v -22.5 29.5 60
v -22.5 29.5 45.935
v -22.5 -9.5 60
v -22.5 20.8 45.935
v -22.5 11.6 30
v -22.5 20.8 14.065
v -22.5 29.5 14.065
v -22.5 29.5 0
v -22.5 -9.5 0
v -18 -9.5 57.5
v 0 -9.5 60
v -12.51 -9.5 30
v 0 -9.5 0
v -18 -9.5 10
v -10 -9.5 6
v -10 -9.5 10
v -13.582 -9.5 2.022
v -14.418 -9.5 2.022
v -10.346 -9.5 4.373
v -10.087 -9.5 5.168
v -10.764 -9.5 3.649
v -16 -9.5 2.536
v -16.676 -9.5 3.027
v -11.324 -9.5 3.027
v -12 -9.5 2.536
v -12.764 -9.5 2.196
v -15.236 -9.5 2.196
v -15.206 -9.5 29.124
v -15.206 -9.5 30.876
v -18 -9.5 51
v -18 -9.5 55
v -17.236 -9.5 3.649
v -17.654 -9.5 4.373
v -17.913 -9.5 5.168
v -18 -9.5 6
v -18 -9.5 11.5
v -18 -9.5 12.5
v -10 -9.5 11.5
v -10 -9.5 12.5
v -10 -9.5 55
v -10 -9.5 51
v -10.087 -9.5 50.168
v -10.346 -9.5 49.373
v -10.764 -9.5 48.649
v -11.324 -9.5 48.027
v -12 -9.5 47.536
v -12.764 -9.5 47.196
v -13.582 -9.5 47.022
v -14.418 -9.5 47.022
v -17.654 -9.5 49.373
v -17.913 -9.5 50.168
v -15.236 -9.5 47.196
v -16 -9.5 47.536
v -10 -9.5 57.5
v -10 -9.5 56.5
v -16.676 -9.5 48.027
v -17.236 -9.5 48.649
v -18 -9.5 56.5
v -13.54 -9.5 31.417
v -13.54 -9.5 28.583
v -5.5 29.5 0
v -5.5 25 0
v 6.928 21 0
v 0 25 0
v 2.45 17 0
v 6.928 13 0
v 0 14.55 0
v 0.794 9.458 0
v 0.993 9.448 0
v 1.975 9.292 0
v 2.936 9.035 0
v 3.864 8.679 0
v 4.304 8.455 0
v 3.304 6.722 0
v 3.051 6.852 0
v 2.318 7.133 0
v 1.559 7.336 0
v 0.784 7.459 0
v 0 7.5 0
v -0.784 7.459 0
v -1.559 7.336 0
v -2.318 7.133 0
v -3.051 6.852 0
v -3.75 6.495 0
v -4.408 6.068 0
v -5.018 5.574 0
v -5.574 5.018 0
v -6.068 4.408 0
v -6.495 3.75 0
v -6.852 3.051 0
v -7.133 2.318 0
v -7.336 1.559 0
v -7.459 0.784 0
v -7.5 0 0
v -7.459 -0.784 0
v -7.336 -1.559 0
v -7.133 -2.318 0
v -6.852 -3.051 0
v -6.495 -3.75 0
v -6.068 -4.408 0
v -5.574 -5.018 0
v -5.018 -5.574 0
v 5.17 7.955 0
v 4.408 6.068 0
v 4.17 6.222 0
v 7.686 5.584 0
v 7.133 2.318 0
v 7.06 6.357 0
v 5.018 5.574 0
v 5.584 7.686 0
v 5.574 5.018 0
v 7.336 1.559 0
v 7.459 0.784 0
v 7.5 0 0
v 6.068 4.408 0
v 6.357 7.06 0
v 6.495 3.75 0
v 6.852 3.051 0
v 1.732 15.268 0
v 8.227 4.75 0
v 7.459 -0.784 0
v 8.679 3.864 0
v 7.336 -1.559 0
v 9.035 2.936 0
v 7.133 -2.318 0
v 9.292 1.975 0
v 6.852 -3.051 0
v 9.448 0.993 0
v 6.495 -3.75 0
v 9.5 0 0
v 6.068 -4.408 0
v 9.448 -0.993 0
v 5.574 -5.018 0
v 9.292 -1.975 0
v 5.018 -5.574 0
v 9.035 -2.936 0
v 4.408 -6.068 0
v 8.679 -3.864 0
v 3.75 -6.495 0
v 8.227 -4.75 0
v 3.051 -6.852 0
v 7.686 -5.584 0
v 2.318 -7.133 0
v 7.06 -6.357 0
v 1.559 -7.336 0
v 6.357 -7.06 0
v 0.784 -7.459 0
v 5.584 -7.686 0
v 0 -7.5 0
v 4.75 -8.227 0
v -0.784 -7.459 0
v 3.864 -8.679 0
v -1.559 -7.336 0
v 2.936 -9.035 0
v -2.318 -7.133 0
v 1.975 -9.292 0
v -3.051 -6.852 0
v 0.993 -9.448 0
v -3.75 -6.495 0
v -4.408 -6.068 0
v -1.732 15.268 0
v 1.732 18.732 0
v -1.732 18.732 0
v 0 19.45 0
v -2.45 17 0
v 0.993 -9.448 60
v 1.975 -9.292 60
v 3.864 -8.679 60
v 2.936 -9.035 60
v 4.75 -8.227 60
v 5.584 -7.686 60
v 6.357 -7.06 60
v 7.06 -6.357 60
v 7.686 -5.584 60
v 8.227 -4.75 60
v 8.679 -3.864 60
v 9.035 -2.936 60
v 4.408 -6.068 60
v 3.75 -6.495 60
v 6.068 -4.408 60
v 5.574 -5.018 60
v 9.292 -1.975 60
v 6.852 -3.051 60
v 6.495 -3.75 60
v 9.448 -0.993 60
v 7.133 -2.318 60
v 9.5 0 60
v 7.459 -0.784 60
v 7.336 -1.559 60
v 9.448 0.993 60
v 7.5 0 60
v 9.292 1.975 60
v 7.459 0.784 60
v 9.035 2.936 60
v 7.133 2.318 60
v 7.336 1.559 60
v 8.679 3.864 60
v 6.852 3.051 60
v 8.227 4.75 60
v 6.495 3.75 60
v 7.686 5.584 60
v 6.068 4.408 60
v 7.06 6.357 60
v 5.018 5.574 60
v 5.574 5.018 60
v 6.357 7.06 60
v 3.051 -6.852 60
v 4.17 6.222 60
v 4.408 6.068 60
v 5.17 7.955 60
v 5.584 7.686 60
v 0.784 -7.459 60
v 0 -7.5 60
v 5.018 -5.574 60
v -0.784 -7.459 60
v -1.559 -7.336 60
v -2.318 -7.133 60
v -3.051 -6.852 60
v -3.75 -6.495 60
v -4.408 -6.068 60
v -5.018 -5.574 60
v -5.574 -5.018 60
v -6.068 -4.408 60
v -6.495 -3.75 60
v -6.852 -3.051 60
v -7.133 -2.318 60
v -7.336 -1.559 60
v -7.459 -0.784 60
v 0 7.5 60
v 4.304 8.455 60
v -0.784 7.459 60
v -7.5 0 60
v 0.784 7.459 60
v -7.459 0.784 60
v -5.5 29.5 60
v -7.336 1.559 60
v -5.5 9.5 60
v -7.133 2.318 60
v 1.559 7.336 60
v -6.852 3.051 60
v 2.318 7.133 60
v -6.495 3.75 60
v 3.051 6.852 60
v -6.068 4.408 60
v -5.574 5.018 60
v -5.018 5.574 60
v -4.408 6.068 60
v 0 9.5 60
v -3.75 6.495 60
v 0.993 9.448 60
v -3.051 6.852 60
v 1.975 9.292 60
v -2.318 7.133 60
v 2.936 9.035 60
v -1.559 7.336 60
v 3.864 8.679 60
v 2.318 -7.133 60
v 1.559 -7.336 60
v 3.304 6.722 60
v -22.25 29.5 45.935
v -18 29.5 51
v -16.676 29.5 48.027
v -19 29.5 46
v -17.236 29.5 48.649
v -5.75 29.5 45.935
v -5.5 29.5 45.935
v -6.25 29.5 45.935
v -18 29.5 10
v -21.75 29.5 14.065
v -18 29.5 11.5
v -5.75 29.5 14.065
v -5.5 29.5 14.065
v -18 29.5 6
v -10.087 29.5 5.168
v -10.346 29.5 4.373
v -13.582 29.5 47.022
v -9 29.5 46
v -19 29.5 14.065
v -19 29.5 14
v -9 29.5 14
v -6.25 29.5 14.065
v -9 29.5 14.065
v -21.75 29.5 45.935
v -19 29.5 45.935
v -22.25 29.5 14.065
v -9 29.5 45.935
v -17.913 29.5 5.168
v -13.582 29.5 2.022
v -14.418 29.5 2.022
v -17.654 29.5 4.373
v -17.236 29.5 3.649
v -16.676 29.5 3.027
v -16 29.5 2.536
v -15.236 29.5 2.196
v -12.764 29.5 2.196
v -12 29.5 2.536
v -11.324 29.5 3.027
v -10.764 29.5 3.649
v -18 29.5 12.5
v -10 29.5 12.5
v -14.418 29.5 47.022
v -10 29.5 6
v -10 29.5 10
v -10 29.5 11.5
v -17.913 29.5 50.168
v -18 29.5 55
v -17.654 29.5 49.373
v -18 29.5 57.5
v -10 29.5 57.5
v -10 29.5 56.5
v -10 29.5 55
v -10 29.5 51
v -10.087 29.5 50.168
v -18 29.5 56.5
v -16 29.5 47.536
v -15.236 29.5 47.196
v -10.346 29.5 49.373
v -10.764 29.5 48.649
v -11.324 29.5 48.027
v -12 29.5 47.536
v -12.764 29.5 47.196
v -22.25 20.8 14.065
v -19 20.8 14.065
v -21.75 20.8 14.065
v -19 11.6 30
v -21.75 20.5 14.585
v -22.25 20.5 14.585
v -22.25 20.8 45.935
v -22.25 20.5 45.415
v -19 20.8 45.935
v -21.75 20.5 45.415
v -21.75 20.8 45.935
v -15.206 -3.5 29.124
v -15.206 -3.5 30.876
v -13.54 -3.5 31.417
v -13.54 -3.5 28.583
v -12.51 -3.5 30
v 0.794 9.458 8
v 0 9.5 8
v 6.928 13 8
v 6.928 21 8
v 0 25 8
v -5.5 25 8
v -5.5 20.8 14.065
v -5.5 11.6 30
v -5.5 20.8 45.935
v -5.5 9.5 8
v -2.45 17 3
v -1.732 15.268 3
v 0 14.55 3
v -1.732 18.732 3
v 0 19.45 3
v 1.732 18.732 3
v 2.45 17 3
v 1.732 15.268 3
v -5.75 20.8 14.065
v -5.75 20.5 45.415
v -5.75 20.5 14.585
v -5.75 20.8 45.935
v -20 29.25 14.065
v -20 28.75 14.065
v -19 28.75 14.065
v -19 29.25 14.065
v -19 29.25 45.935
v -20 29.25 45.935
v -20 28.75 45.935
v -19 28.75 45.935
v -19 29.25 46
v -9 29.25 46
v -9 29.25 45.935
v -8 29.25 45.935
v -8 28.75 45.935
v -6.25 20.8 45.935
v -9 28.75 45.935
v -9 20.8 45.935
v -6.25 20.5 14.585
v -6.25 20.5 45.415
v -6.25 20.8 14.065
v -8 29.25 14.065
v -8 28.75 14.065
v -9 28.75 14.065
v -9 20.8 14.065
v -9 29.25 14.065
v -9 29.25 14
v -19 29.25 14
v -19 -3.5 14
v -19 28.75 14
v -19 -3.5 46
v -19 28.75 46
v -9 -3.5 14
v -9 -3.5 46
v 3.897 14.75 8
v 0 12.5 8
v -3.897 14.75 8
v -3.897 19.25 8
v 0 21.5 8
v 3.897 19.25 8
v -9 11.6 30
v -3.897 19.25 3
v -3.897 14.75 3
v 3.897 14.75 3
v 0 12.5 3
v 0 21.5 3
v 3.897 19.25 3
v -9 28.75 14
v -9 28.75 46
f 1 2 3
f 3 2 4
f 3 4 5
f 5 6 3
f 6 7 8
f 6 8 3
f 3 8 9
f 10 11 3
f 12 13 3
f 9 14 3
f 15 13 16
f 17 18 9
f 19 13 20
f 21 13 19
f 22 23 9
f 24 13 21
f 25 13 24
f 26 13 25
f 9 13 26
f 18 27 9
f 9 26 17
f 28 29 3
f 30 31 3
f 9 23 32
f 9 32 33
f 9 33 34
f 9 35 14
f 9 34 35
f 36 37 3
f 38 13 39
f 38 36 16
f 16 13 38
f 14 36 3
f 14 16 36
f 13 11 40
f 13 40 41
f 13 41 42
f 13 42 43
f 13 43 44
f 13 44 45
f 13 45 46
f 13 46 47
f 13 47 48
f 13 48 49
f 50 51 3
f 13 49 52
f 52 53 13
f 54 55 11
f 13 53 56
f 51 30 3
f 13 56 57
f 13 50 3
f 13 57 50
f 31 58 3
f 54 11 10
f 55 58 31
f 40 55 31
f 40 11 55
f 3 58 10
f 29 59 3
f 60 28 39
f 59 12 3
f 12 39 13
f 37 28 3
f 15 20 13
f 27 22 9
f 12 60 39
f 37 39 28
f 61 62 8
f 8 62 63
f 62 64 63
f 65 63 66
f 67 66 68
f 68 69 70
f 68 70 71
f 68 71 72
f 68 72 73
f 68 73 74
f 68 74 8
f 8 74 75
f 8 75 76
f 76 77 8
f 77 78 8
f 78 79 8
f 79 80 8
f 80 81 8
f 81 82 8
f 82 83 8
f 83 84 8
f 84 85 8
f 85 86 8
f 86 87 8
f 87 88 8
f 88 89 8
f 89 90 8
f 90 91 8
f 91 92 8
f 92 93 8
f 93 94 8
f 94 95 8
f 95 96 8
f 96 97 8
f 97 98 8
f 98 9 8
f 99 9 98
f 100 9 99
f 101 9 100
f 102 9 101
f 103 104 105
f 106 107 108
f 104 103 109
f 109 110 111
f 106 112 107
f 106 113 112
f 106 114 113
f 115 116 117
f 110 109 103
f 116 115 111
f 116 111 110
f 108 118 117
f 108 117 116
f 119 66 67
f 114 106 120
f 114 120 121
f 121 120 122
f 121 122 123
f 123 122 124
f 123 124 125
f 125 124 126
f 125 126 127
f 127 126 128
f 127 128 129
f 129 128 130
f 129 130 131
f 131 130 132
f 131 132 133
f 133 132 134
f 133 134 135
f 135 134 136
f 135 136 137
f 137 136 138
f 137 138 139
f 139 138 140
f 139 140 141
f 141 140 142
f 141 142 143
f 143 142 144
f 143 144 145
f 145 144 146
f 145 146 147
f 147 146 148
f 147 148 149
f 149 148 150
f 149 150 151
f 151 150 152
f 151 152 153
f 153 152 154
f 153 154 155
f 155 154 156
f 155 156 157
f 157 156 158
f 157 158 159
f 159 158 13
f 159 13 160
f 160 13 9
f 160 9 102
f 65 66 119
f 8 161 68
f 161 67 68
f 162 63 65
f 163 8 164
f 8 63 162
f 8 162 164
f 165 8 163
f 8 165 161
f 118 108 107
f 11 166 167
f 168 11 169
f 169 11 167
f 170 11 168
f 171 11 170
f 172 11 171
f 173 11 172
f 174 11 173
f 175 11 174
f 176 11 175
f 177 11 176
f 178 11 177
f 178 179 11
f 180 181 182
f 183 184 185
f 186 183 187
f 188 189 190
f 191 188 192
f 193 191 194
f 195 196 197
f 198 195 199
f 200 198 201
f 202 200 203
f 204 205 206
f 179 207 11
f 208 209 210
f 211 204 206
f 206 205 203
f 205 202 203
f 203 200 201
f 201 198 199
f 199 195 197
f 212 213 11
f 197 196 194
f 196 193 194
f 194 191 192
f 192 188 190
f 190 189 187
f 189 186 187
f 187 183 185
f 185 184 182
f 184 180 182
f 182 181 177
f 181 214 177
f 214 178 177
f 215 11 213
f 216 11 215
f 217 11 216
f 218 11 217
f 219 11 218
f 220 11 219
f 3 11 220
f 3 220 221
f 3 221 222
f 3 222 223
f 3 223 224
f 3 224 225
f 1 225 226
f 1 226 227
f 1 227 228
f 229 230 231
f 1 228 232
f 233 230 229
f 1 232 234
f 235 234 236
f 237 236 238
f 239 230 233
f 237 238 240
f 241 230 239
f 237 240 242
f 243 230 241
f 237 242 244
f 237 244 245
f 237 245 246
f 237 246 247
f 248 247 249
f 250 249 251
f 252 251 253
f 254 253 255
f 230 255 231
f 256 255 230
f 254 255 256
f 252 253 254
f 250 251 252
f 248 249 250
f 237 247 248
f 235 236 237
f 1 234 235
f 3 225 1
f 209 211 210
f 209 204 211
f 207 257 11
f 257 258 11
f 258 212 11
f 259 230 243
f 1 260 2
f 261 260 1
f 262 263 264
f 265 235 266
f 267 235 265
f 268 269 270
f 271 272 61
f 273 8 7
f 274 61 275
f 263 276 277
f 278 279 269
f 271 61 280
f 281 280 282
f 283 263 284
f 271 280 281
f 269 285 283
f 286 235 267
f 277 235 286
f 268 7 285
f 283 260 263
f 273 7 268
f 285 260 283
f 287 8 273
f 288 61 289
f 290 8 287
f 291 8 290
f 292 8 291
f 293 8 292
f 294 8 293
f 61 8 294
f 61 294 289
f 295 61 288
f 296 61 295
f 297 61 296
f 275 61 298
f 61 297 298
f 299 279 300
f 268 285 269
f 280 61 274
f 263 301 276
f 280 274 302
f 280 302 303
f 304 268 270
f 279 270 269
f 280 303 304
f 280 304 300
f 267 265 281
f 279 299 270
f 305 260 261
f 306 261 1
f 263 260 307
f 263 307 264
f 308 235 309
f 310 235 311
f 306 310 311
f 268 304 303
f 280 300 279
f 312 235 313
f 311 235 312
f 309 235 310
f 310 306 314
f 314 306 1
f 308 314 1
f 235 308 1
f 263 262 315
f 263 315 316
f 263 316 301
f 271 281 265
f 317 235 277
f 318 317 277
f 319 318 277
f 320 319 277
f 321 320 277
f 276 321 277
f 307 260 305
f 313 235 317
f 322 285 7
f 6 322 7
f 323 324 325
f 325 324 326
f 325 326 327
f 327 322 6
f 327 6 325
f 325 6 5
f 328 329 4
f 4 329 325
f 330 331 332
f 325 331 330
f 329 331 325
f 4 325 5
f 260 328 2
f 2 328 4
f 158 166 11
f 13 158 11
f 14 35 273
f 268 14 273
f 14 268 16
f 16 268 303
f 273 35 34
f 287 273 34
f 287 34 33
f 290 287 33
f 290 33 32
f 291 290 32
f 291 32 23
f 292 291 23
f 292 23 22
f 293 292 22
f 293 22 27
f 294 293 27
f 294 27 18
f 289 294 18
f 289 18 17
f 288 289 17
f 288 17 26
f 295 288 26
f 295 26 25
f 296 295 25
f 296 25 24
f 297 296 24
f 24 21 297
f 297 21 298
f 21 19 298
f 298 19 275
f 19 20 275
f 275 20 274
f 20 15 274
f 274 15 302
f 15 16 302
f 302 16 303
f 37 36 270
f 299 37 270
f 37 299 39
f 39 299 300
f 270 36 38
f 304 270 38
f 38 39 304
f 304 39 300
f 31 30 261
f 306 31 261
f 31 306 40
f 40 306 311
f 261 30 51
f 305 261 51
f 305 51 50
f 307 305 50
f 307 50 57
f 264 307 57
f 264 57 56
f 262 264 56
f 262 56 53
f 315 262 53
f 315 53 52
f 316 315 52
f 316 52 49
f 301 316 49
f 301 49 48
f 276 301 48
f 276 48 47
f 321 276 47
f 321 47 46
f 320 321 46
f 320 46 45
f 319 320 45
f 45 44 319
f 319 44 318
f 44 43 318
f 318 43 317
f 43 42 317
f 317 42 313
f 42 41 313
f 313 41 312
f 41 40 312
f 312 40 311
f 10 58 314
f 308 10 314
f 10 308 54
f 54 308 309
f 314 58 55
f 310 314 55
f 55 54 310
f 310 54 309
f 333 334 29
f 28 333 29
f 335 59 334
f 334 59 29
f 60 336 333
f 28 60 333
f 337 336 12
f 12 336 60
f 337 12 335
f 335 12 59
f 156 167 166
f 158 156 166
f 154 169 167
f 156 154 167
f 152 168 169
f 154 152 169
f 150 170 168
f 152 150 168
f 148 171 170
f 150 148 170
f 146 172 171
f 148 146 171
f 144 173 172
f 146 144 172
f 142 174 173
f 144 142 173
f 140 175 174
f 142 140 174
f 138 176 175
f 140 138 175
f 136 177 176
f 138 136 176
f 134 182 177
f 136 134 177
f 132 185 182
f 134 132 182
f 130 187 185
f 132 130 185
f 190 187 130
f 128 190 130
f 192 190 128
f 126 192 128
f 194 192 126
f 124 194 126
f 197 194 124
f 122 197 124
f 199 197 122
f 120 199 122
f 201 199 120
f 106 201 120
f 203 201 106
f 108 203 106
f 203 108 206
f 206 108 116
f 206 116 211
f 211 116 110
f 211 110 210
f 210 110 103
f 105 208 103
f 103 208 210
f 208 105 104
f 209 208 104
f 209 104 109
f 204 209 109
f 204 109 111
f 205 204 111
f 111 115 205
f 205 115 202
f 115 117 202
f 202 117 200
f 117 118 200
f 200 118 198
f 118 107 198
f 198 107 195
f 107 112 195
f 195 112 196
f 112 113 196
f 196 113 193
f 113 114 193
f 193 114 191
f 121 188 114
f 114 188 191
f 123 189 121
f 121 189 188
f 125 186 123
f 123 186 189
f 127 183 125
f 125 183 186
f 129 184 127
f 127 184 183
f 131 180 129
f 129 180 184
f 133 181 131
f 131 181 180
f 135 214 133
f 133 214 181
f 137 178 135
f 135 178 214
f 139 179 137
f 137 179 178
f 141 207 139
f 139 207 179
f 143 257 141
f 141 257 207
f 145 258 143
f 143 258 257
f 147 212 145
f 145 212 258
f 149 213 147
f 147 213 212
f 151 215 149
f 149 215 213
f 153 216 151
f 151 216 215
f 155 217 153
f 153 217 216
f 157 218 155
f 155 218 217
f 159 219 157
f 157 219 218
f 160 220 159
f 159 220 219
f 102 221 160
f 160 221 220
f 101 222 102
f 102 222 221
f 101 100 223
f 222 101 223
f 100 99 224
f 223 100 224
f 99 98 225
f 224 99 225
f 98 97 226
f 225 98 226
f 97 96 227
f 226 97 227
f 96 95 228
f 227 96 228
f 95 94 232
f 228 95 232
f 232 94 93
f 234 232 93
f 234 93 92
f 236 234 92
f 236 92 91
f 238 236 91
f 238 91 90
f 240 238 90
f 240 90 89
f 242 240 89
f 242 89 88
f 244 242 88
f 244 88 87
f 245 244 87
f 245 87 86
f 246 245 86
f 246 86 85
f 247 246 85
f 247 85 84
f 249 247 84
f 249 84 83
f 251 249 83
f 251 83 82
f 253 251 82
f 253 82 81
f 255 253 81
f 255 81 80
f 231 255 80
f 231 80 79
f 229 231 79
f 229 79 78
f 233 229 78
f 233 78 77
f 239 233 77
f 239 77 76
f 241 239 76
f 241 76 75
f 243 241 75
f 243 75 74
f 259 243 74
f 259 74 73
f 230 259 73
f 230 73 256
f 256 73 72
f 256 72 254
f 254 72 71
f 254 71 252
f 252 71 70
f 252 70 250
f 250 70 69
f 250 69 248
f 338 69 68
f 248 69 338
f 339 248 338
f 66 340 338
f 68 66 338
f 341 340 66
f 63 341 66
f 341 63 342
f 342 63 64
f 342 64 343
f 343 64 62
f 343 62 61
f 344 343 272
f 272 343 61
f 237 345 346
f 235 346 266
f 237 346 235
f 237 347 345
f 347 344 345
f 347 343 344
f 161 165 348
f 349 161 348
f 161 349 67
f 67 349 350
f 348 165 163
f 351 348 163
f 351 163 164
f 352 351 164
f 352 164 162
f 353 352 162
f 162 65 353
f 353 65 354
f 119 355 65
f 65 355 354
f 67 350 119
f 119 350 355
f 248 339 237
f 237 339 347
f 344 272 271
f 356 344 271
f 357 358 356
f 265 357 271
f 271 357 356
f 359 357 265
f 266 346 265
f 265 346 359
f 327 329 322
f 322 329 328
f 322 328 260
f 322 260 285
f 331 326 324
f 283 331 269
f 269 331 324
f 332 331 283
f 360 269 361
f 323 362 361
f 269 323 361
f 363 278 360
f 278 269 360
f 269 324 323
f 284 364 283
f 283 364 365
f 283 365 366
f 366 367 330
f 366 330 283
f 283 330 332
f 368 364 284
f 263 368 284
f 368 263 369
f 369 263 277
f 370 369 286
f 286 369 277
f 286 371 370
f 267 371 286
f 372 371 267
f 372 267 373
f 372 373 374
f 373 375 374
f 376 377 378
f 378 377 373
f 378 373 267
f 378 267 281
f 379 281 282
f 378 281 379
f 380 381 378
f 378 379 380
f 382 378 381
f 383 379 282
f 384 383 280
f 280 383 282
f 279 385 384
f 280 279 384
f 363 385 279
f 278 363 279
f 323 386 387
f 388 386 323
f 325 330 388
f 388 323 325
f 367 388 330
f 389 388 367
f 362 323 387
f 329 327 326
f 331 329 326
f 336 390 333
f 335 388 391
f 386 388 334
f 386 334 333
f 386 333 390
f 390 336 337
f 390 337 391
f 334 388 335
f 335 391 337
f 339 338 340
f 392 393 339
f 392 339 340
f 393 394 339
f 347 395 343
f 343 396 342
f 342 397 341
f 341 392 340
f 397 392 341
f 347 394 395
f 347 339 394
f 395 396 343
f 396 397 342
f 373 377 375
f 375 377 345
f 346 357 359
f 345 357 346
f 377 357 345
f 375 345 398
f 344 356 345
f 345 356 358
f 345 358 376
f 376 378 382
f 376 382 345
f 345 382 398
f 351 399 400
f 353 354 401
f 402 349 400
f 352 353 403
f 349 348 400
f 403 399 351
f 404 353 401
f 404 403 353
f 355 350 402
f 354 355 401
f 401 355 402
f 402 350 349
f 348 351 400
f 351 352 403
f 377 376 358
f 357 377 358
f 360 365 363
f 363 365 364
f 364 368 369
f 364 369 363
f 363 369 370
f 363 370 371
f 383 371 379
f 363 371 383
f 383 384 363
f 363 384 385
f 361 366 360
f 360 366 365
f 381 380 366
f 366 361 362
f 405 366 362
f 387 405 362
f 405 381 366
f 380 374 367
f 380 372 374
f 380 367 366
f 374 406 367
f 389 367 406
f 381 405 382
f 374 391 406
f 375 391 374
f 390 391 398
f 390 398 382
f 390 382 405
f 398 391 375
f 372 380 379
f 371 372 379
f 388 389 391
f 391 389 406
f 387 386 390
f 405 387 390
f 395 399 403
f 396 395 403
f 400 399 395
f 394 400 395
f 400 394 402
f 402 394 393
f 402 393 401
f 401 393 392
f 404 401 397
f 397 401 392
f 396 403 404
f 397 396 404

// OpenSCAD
// file: inc/bearing.scad
// PRUSA iteration3
// Bearing holders
// GNU GPL v3
// Josef Průša <iam@josefprusa.cz> and contributors
// http://www.reprap.org/wiki/Prusa_Mendel
// http://prusamendel.org

bearing_diameter = 15;

module horizontal_bearing_base(bearings=1){
 translate(v=[0,0,6]) cube(size = [24,8+bearings*25,12], center = true);	
}
module horizontal_bearing_holes(bearings=1){
 cutter_lenght = 10+bearings*25;
 one_holder_lenght = 8+25;
 holder_lenght = 8+bearings*25;
 
 // Main bearing cut
 difference(){
  translate(v=[0,0,12]) rotate(a=[90,0,0]) translate(v=[0,0,-cutter_lenght/2]) cylinder(h = cutter_lenght, r=bearing_diameter/2, $fn=50);
  // Bearing retainers
  translate(v=[0,1-holder_lenght/2,3]) cube(size = [24,6,8], center = true);
  translate(v=[0,-1+holder_lenght/2,3]) cube(size = [24,6,8], center = true);
 }
 
 // Ziptie cutouts
 ziptie_cut_ofset = 0;
 for ( i = [0 : bearings-1] ){
  // For easier positioning I move them by half of one 
  // bearing holder then add each bearign lenght and then center again
  translate(v=[0,-holder_lenght/2,0]) translate(v=[0,one_holder_lenght/2+i*25,0]) difference(){
   union(){
    translate(v=[0,2-6,12]) rotate(a=[90,0,0]) translate(v=[0,0,0]) cylinder(h = 4, r=12.5, $fn=50);
    translate(v=[0,2+6,12]) rotate(a=[90,0,0]) translate(v=[0,0,0]) cylinder(h = 4, r=12.5, $fn=50);
   }
   translate(v=[0,10,12]) rotate(a=[90,0,0]) translate(v=[0,0,0]) cylinder(h = 24, r=10, $fn=50);
  }
 }
 
}

module horizontal_bearing_test(){
 difference(){
  horizontal_bearing_base(1);
  horizontal_bearing_holes(1);
 }
 translate(v=[30,0,0]) difference(){
  horizontal_bearing_base(2);
  horizontal_bearing_holes(2);
 }
 translate(v=[60,0,0]) difference(){
  horizontal_bearing_base(3);
  horizontal_bearing_holes(3);
 }
}



thinwall = 2;
bearing_size = bearing_diameter + 2 * thinwall;

module vertical_bearing_base(){
 translate(v=[-2-bearing_size/4,0,30]) cube(size = [4+bearing_size/2,bearing_size,60], center = true);
 cylinder(h = 60, r=bearing_size/2, $fn = 60);
}

module vertical_bearing_holes(){
  translate(v=[0,0,-1]) cylinder(h = 62, r=bearing_diameter/2, $fn = 60);
  rotate(a=[0,0,-60]) translate(v=[10,0,31]) cube(size = [10,1,62], center = true);
}

difference(){
vertical_bearing_base();
vertical_bearing_holes();
}
// file: ../configuration.scad
x_rod_distance = 45;

// Select your belt type ******************************************************

//T2.5
belt_tooth_distance = 2.5;
belt_tooth_ratio = 0.5;

//T5 (strongly discouraged)
//belt_tooth_distance = 5;
//belt_tooth_ratio = 0.75;

//HTD3
//belt_tooth_distance = 3;
//belt_tooth_ratio = 0.75;

//MXL
//belt_tooth_distance = 2.032;
//belt_tooth_ratio = 0.64;

// Select your hot-end mount ******************************************************

// 0 = none; 1 = groove-mount (J-head/MakerGear etc.)
hotend_mount = 1;

hotend_groovemount_depth = 5;
hotend_groovemount_diameter = 11.05;
// file: inc/nuts_and_bolts.scad
// Copyright 2010 D1plo1d

// This library is dual licensed under the GPL 3.0 and the GNU Lesser General Public License as per http://creativecommons.org/licenses/LGPL/2.1/ .

//testNutsAndBolts();

module SKIPtestNutsAndBolts()
{
	$fn = 360;
	translate([0,15])nutHole(3, proj=2);
	boltHole(3, length= 30, proj=2);
}

MM = "mm";
INCH = "inch"; //Not yet supported

//Based on: http://www.roymech.co.uk/Useful_Tables/Screws/Hex_Screws.htm
METRIC_NUT_AC_WIDTHS =
[
	-1, //0 index is not used but reduces computation
	-1,
	-1,
	6.90,//m3
	8.10,//m4
	9.20,//m5
	11.50,//m6
	-1,
	15.50,//m8
	-1,
	19.60,//m10
	-1,
	22.10,//m12
	-1,
	-1,
	-1,
	27.70,//m16
	-1,
	-1,
	-1,
	34.60,//m20
	-1,
	-1,
	-1,
	41.60,//m24
	-1,
	-1,
	-1,
	-1,
	-1,
	53.1,//m30
	-1,
	-1,
	-1,
	-1,
	-1,
	63.5//m36
];
METRIC_NUT_THICKNESS =
[
	-1, //0 index is not used but reduces computation
	-1,
	-1,
	2.40,//m3
	3.20,//m4
	4.00,//m5
	5.00,//m6
	-1,
	6.50,//m8
	-1,
	8.00,//m10
	-1,
	10.00,//m12
	-1,
	-1,
	-1,
	13.00,//m16
	-1,
	-1,
	-1,
	16.00//m20
	-1,
	-1,
	-1,
	19.00,//m24
	-1,
	-1,
	-1,
	-1,
	-1,
	24.00,//m30
	-1,
	-1,
	-1,
	-1,
	-1,
	29.00//m36
];

COURSE_METRIC_BOLT_MAJOR_THREAD_DIAMETERS =
[//based on max values
	-1, //0 index is not used but reduces computation
	-1,
	-1,
	2.98,//m3
	3.978,//m4
	4.976,//m5
	5.974,//m6
	-1,
	7.972,//m8
	-1,
	9.968,//m10
	-1,
	11.966,//m12
	-1,
	-1,
	-1,
	15.962,//m16
	-1,
	-1,
	-1,
	19.958,//m20
	-1,
	-1,
	-1,
	23.952,//m24
	-1,
	-1,
	-1,
	-1,
	-1,
	29.947,//m30
	-1,
	-1,
	-1,
	-1,
	-1,
	35.940//m36
];

module nutHole(size, units=MM, tolerance = +0.0001, proj = -1)
{
	//takes a metric screw/nut size and looksup nut dimensions
	radius = METRIC_NUT_AC_WIDTHS[size]/2+tolerance;
	height = METRIC_NUT_THICKNESS[size]+tolerance;
	if (proj == -1)
	{
		cylinder(r= radius, h=height, $fn = 6, center=[0,0]);
	}
	if (proj == 1)
	{
		circle(r= radius, $fn = 6);
	}
	if (proj == 2)
	{
		translate([-radius/2, 0])
			square([radius*2, height]);
	}
}

module boltHole(size, units=MM, length, tolerance = +0.0001, proj = -1)
{
	radius = COURSE_METRIC_BOLT_MAJOR_THREAD_DIAMETERS[size]/2+tolerance;
//TODO: proper screw cap values
	capHeight = METRIC_NUT_THICKNESS[size]+tolerance; //METRIC_BOLT_CAP_HEIGHTS[size]+tolerance;
	capRadius = METRIC_NUT_AC_WIDTHS[size]/2+tolerance; //METRIC_BOLT_CAP_RADIUS[size]+tolerance;

	if (proj == -1)
	{
	translate([0, 0, -capHeight])
		cylinder(r= capRadius, h=capHeight, $fn=15);
	cylinder(r = radius, h = length, $fn=15);
	}
	if (proj == 1)
	{
		circle(r = radius);
	}
	if (proj == 2)
	{
		translate([-capRadius/2, -capHeight])
			square([capRadius*2, capHeight]);
		square([radius*2, length]);
	}
}
// file: inc/x-end.scad
// PRUSA iteration3
// X end prototype
// GNU GPL v3
// Josef Průša <iam@josefprusa.cz> and contributors
// http://www.reprap.org/wiki/Prusa_Mendel
// http://prusamendel.org

include <../../configuration.scad>
use <bearing.scad>

module x_end_base(){
// Main block
translate(v=[-14,-10,30]) cube(size = [17,39,60], center = true);
// Bearing holder
vertical_bearing_base();	
//Nut trap
 // Cube
 translate(v=[-2-2,-17,4]) cube(size = [8,16,8], center = true);
 // Hexagon
 translate(v=[0,-17,0]) rotate([0,0,30]) cylinder(h = 8, r=8, $fn = 6);
}

module x_end_holes(){
vertical_bearing_holes();
// Belt hole
translate(v=[-5.5-10+1.5,-10,30]) cube(size = [10,46,32], center = true);
// Bottom pushfit rod
translate(v=[-14,-40,6]) rotate(a=[-90,0,0]) pushfit_rod(8,50);
// Top pushfit rod
translate(v=[-14,-40,x_rod_distance+6]) rotate(a=[-90,0,0]) pushfit_rod(8,50);
// Nut trap
 translate(v=[0,-17,-1]) cylinder(h = 10, r=2.45);
 translate(v=[0,-17,3]) rotate([0,0,30]) cylinder(h = 5, r=4.5, $fn = 6);
}


// Final prototype
module x_end_plain(){
 difference(){
  x_end_base();
  x_end_holes();
 }
}

//x_end_plain();


module pushfit_rod(diameter,length){
 cylinder(h = length, r=diameter/2, $fn=30);
 translate(v=[0,-diameter/4,length/2]) cube(size = [diameter,diameter/2,length], center = true);
 translate(v=[0,-diameter/2-2,length/2]) cube(size = [diameter,1,length], center = true);
}
// main file
// PRUSA iteration3
// X end idler
// GNU GPL v3
// Josef Průša <iam@josefprusa.cz> and contributors
// http://www.reprap.org/wiki/Prusa_Mendel
// http://prusamendel.org

use <inc/x-end.scad>
use <inc/nuts_and_bolts.scad>

module x_end_idler_base(){
 x_end_base();

}

module x_end_idler_holes(){
 x_end_holes();
 translate(v=[0,-25,30.25]) rotate(a=[0,-90,0]) cylinder(h = 80, r=2.2, $fn=30);
}

// Final part
module x_end_idler(){
 mirror([0,1,0]) difference(){
  x_end_idler_base();
  x_end_idler_holes();
 }
}

module x_end_idler_jmmp_base(){
	
difference(){
		x_end_idler();
		translate(v=[40,30,30]) rotate(a=[0,-90,0]) rotate(a=[0,0,90]) cylinder(h = 80, r=18.4, $fn=6);
		//translate(v=[-14,25,30]) cube(size = [15,9,32], center = true);// agujero para alinear con soporte

	}
	translate(v=[-5.5-10+1.5,-6.5,30]) cube(size = [10,6,32], center = true);
}
  


module x_end_idler_jmmp_hole(){
	translate(v=[-5.5-10+1.5,-15.5,30])rotate(a=[-90,0,0]) boltHole(3, length = 100);
}

module x_end_idler_jmmp(){
	difference(){
		x_end_idler_jmmp_base();
		x_end_idler_jmmp_hole();
	}

}

x_end_idler_jmmp();

module soporte(){
	/*difference(){
		translate(v=[-14,25,30]) cube(size = [17,9,33], center = true);
		translate(v=[-14,25,30]) cube(size = [16,11,33], center = true);

	}*/
translate(v=[-14,29,30])cube(size = [12,0.5,33], center = true);
translate(v=[-6,25,30])cube(size = [0.5,9,33], center = true);
translate(v=[-22,25,30])cube(size = [0.5,9,33], center = true);
}

soporte();
